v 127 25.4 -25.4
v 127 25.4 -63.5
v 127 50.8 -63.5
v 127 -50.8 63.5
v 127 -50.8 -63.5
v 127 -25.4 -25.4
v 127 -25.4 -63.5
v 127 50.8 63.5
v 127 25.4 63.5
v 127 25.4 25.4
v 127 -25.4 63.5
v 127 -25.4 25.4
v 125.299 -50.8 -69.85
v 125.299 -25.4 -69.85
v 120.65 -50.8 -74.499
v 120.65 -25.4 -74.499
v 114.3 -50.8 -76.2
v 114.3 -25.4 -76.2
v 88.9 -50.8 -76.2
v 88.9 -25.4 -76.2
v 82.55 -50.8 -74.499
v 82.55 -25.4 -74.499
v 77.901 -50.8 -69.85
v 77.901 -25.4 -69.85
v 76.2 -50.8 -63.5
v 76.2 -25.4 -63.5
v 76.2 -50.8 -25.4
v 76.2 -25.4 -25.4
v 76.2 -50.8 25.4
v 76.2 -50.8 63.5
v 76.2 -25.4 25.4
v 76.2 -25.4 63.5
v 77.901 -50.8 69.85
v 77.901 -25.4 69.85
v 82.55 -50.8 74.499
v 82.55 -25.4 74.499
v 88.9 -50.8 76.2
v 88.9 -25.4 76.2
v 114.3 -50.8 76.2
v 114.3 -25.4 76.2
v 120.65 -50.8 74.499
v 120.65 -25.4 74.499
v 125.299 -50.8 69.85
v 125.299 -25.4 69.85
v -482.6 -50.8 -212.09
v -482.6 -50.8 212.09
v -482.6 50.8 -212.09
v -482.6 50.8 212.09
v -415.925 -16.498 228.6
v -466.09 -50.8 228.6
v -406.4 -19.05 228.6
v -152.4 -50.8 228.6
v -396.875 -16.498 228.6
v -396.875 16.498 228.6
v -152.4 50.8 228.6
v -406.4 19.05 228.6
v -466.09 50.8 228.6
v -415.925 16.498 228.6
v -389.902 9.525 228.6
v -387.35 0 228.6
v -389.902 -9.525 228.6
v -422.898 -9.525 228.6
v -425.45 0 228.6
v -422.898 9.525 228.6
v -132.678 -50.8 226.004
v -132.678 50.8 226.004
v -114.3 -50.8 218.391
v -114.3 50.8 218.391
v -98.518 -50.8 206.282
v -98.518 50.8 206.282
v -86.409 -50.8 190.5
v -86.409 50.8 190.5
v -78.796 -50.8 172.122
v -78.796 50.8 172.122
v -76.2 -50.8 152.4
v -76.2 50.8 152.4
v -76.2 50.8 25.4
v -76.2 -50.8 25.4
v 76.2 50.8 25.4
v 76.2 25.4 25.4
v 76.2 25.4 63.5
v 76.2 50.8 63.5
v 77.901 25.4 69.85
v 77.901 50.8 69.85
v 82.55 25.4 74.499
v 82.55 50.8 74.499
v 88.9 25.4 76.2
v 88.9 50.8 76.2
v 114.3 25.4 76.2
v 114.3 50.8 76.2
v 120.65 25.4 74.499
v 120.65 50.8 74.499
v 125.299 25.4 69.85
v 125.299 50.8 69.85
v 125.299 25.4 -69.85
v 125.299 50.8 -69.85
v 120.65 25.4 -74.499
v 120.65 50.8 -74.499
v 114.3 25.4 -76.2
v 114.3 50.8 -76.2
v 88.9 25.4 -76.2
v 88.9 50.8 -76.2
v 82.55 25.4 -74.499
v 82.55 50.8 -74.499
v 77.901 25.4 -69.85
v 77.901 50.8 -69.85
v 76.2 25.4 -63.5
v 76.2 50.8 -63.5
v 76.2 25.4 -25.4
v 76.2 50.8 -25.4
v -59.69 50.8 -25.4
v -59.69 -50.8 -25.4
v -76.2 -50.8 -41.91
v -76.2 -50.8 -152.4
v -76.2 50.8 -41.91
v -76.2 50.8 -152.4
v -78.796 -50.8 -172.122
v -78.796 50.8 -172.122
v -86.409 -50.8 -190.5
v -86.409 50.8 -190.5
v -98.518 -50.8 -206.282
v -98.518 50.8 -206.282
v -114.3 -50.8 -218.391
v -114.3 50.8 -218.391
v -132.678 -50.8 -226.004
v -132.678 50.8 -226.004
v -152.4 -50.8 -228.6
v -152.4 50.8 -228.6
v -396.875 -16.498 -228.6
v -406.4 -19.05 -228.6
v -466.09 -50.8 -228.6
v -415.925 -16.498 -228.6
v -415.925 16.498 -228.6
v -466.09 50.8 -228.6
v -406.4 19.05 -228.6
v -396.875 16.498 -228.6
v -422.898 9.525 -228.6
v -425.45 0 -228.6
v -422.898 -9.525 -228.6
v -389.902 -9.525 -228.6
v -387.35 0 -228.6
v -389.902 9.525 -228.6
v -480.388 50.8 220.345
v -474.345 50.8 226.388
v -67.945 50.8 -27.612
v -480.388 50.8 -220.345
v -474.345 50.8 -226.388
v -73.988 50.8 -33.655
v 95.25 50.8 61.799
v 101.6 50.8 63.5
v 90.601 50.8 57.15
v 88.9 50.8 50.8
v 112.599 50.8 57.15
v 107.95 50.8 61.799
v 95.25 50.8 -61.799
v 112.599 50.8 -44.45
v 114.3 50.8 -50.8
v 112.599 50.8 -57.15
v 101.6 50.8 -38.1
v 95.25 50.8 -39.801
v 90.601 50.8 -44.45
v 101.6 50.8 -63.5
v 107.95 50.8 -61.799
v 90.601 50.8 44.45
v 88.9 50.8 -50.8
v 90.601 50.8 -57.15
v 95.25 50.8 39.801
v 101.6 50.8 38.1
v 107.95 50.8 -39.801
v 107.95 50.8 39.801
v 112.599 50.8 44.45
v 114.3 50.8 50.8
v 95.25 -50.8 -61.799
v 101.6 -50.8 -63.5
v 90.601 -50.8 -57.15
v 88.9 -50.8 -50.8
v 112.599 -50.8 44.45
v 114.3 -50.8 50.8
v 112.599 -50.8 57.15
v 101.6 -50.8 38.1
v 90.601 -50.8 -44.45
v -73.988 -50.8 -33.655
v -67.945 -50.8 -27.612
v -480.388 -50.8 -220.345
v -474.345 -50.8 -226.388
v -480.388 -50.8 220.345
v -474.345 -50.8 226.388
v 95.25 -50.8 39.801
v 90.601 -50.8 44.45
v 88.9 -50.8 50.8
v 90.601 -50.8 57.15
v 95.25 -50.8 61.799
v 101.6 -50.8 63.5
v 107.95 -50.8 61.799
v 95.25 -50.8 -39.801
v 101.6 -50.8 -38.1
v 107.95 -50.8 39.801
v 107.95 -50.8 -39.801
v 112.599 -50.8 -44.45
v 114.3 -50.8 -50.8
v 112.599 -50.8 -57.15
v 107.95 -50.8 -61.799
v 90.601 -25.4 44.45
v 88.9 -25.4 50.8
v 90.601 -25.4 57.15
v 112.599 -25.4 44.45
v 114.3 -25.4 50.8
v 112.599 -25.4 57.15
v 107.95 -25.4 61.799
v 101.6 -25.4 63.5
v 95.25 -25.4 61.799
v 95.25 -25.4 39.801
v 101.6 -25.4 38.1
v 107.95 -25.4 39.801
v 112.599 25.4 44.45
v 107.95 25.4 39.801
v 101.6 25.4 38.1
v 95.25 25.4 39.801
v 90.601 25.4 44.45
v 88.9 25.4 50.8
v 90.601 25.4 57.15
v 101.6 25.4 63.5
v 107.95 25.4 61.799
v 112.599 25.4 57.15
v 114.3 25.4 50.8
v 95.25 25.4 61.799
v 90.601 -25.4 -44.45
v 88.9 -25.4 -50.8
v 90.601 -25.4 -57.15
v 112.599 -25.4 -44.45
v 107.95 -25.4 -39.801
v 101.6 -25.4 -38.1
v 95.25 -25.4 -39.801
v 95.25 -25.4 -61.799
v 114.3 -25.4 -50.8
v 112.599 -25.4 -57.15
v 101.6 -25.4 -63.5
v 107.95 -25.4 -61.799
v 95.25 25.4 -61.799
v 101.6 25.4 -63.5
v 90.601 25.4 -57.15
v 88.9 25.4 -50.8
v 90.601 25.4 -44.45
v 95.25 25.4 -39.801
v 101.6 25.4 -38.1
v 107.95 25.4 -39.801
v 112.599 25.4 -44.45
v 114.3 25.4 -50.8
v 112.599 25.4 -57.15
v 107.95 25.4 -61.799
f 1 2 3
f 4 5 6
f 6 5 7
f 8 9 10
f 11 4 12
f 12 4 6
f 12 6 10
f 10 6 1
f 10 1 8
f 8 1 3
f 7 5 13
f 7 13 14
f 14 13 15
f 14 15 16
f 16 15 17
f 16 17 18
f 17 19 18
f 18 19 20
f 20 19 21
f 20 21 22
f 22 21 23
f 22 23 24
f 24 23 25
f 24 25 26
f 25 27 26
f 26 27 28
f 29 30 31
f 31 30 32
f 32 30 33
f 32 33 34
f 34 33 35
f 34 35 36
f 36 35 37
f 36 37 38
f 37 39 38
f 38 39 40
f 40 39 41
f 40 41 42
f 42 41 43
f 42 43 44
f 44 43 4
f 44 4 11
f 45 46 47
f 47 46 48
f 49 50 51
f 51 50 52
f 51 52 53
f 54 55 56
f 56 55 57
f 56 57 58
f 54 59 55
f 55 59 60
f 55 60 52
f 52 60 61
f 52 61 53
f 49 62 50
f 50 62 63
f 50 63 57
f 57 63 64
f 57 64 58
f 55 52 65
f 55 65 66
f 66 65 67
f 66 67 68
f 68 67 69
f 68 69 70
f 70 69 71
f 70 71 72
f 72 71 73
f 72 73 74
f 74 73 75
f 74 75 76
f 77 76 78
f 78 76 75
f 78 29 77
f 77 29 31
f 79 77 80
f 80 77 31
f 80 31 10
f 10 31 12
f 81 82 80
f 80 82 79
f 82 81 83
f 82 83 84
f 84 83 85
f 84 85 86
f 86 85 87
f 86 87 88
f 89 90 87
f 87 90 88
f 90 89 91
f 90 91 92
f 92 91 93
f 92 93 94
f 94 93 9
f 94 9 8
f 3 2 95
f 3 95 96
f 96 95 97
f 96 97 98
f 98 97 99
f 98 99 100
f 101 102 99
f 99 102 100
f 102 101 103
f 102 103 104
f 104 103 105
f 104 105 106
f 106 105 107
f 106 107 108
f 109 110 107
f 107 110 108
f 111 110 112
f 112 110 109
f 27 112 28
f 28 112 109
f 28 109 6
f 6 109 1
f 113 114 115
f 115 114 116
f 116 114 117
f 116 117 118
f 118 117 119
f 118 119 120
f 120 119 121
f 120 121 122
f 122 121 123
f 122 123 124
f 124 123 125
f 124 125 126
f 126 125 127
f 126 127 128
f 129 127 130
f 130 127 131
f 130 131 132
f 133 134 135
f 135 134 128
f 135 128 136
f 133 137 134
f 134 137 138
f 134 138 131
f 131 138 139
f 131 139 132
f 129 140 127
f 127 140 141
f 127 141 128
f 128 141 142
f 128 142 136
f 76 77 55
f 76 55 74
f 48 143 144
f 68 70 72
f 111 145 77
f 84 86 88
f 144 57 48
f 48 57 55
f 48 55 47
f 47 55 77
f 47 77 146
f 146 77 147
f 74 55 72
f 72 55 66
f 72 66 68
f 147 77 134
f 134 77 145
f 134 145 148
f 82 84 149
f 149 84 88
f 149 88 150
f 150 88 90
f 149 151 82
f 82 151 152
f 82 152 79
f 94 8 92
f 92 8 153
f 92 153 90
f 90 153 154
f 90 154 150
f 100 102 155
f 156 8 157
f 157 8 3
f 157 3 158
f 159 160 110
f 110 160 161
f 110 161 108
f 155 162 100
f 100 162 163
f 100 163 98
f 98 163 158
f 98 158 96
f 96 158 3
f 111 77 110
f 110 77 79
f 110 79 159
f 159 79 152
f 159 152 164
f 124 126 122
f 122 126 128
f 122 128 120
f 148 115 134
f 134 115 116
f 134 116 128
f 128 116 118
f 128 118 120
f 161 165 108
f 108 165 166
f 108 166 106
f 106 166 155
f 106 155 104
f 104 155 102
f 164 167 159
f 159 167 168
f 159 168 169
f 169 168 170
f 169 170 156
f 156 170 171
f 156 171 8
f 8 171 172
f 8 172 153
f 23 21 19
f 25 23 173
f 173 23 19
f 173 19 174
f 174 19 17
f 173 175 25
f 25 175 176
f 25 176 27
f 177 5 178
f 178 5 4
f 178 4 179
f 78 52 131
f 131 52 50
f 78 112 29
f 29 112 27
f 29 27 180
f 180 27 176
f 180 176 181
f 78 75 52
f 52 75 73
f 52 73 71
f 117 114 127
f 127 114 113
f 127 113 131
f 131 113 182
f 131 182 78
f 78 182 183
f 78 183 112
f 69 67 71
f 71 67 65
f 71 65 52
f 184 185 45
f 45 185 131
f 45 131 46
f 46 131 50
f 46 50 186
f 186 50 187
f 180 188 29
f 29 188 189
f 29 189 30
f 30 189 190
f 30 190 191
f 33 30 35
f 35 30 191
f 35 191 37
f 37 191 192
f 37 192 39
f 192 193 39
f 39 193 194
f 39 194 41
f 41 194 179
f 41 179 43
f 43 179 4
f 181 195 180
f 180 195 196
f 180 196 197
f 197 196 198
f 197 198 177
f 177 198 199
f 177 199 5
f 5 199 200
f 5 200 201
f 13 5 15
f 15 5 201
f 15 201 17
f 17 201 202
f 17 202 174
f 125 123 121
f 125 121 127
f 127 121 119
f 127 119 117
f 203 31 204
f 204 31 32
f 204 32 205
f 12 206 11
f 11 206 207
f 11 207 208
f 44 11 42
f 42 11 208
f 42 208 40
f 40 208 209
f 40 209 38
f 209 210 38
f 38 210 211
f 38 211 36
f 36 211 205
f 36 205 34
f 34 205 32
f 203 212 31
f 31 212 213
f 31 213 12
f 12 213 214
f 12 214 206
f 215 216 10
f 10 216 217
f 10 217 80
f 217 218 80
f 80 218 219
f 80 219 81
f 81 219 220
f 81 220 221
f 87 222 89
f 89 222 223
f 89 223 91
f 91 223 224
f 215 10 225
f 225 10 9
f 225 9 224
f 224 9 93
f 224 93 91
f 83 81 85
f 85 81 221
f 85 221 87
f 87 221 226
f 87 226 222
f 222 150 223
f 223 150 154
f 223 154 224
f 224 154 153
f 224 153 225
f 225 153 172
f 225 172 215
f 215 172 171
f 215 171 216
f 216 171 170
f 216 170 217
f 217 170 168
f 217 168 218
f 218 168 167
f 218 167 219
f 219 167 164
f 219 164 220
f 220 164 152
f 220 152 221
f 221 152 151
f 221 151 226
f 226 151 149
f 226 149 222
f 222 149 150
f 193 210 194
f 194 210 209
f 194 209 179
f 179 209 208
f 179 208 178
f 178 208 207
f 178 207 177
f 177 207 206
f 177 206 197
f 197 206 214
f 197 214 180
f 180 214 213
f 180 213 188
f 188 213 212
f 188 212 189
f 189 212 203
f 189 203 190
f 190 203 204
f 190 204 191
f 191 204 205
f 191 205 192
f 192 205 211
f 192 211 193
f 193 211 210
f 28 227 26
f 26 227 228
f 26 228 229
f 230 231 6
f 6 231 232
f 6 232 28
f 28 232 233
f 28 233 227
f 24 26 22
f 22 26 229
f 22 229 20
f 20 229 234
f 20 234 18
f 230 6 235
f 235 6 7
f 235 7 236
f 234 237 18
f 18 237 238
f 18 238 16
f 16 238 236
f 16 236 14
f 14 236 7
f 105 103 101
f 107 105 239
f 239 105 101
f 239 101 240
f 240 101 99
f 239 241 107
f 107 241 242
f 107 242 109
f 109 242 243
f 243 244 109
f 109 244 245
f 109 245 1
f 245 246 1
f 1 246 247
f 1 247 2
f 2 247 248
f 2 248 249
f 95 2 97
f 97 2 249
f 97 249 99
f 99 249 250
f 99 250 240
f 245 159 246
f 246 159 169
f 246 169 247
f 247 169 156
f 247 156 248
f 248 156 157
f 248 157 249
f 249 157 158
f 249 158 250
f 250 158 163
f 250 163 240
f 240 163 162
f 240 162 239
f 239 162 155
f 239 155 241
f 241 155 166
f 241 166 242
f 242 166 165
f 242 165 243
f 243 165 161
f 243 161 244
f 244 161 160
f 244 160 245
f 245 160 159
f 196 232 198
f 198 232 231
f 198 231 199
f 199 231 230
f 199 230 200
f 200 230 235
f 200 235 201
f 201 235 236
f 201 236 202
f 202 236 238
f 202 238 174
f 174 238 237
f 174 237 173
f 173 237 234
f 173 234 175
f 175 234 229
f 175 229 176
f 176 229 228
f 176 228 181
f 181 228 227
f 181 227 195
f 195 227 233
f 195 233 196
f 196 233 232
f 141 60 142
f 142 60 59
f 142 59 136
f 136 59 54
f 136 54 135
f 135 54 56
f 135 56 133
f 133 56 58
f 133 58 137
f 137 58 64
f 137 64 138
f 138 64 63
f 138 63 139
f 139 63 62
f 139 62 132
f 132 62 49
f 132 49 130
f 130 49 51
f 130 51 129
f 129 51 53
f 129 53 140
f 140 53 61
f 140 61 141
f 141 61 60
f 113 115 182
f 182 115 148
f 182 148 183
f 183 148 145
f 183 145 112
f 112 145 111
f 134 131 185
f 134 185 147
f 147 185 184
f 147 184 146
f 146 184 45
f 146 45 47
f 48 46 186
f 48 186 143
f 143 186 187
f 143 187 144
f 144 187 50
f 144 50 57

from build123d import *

# Parameters (mm, degrees)
BOSS_EXTRUDE1_DEPTH     = 50.8
CUT_EXTRUDE1_DEPTH      = 25.4
CUT_EXTRUDE2_START      = -102.6
SKETCH3_R               = 12.7
CUT_EXTRUDE2_DEPTH      = 103.6
SKETCH4_R               = 19.05
CUT_EXTRUDE3_DEPTH      = 1
CUT_EXTRUDE3_DEPTH_BACK = 458.2
FILLET1_R               = 16.51


with BuildPart() as part:
    # Sketch1 → Boss-Extrude1 (new body, symmetric)
    with BuildSketch(Plane(origin=(0, 0, 0), x_dir=(1, 0, 0), z_dir=(0, 1, 0))):
        with BuildLine():
            Line((76.2, -25.4), (-76.2, -25.4))
            Line((-76.2, -25.4), (-76.2, -152.4))
            ThreePointArc((-76.2, -152.4), (-98.518463274, -206.281536726), (-152.4, -228.6))
            Line((-152.4, -228.6), (-482.6, -228.6))
            Line((-482.6, -228.6), (-482.6, 228.6))
            Line((-482.6, 228.6), (-152.4, 228.6))
            ThreePointArc((-152.4, 228.6), (-98.518463274, 206.281536726), (-76.2, 152.4))
            Line((-76.2, 152.4), (-76.2, 25.4))
            Line((-76.2, 25.4), (76.2, 25.4))
            Line((76.2, 25.4), (76.2, 63.5))
            ThreePointArc((76.2, 63.5), (79.919743879, 72.480256121), (88.9, 76.2))
            Line((88.9, 76.2), (114.3, 76.2))
            ThreePointArc((114.3, 76.2), (123.280256121, 72.480256121), (127, 63.5))
            Line((127, 63.5), (127, -63.5))
            ThreePointArc((127, -63.5), (123.280256121, -72.480256121), (114.3, -76.2))
            Line((114.3, -76.2), (88.9, -76.2))
            ThreePointArc((88.9, -76.2), (79.919743879, -72.480256121), (76.2, -63.5))
            Line((76.2, -63.5), (76.2, -25.4))
        make_face()
    extrude(amount=BOSS_EXTRUDE1_DEPTH, both=True)

    # Sketch2 → Cut-Extrude1 (cut, symmetric)
    with BuildSketch(Plane(origin=(0, 0, 0), x_dir=(1, 0, 0), z_dir=(0, 1, 0))):
        with BuildLine():
            Line((127, -63.5), (127, -25.4))
            Line((127, -25.4), (76.2, -25.4))
            Line((76.2, -25.4), (76.2, -63.5))
            ThreePointArc((76.2, -63.5), (79.919743879, -72.480256121), (88.9, -76.2))
            Line((88.9, -76.2), (114.3, -76.2))
            ThreePointArc((114.3, -76.2), (123.280256121, -72.480256121), (127, -63.5))
        make_face()
    cut_extrude1 = extrude(amount=CUT_EXTRUDE1_DEPTH, both=True, mode=Mode.SUBTRACT)

    # Sketch3 → Cut-Extrude2 (cut)
    with BuildSketch(Plane(origin=(0, 50.8, 0), x_dir=(1, 0, 0), z_dir=(0, 1, 0)).offset(CUT_EXTRUDE2_START)):
        with Locations((101.6, -50.8)):
            Circle(SKETCH3_R)
    cut_extrude2 = extrude(amount=CUT_EXTRUDE2_DEPTH, mode=Mode.SUBTRACT)

    # Mirror1: Cut-Extrude1, Cut-Extrude2 across plane
    add(cut_extrude1.mirror(Plane.XY), mode=Mode.SUBTRACT)
    add(cut_extrude2.mirror(Plane.XY), mode=Mode.SUBTRACT)

    # Sketch4 → Cut-Extrude3 (cut, two sides)
    with BuildSketch(Plane.XY.offset(228.6)) as cut_extrude3_sk:
        with Locations((-406.4, 0)):
            Circle(SKETCH4_R)
    extrude(amount=CUT_EXTRUDE3_DEPTH, mode=Mode.SUBTRACT)
    extrude(cut_extrude3_sk.sketch, amount=-CUT_EXTRUDE3_DEPTH_BACK, mode=Mode.SUBTRACT)

    # Fillet1
    fillet1_edges = [part.edges().sort_by_distance(p)[0] for p in [
        (-482.6, 0, -228.6),
        (-76.2, 0, -25.4),
        (-482.6, 0, 228.6),
    ]]
    fillet(fillet1_edges, radius=FILLET1_R)


solid = part.part
